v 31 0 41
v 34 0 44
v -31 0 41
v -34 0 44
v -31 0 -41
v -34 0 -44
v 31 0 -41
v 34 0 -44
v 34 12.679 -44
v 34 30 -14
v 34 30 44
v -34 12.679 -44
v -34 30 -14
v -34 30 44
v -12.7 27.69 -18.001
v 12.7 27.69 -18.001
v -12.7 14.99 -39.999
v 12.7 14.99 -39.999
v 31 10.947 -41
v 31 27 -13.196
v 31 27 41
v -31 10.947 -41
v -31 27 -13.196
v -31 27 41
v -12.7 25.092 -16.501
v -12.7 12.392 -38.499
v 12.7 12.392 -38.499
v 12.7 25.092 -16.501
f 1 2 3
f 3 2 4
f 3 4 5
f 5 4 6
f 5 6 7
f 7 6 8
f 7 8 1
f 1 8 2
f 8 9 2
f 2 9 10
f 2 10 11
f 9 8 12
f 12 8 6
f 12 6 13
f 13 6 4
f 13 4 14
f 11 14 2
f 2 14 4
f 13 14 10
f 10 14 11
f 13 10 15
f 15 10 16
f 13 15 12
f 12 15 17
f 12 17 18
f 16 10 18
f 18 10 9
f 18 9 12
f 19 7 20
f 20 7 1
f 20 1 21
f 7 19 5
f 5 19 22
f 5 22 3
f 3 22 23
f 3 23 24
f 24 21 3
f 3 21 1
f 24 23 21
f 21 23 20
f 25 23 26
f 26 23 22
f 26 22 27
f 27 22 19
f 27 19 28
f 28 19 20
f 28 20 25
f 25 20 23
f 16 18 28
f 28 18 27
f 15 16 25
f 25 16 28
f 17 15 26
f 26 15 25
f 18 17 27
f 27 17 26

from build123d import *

# Parameters (mm, degrees)
SKETCH2_W           = 68
SKETCH2_H           = 88
SKETCH2_W_2         = 62
SKETCH2_H_2         = 82
BOSS_EXTRUDE1_DEPTH = 30
CHAMFER1_SIZE       = 30
CHAMFER1_SIZE2      = 17.320508076
SHELL1_T            = -3
CUT_EXTRUDE1_REACH  = 77.039
SKETCH3_W           = 25.4
SKETCH3_H           = 25.4


with BuildPart() as part:
    # Sketch2 → Boss-Extrude1 (new body)
    # profile 1 of 2: a face of its own
    with BuildSketch(Plane(origin=(0, 0, 0), x_dir=(1, 0, 0), z_dir=(0, 1, 0))):
        Rectangle(SKETCH2_W, SKETCH2_H)
        Rectangle(SKETCH2_W_2, SKETCH2_H_2, mode=Mode.SUBTRACT)
    # profile 2 of 2: a face of its own
    with BuildSketch(Plane(origin=(0, 0, 0), x_dir=(1, 0, 0), z_dir=(0, 1, 0))):
        Rectangle(SKETCH2_W_2, SKETCH2_H_2)
    extrude(amount=BOSS_EXTRUDE1_DEPTH)

    # Chamfer1
    chamfer1_edges = [part.edges().sort_by_distance(p)[0] for p in [
        (0, 30, -44),
    ]]
    chamfer1_side = [part.faces().sort_by_distance(p)[0] for p in [
        (0, 30, 0),
    ]]
    chamfer(chamfer1_edges, length=CHAMFER1_SIZE, length2=CHAMFER1_SIZE2, reference=chamfer1_side[0])

    # Shell1
    shell1_openings = [part.faces().sort_by_distance(p)[0] for p in [
        (0, 0, 0),
    ]]
    offset(amount=SHELL1_T, openings=shell1_openings, kind=Kind.INTERSECTION)

    # Sketch3 → Cut-Extrude1 (cut, up to next)
    with BuildSketch(Plane(origin=(0, 28.562177826, -16.490381057), x_dir=(1, 0, 0), z_dir=(0, 0.8660254037844398, -0.4999999999999982)), mode=Mode.PRIVATE) as cut_extrude1_sk1:
        with Locations((0, 14.444863729)):
            Rectangle(SKETCH3_W, SKETCH3_H)
    cut_extrude1_tool1 = extrude(cut_extrude1_sk1.sketch, amount=-CUT_EXTRUDE1_REACH, mode=Mode.PRIVATE) & part.part
    add(cut_extrude1_tool1.solids().sort_by_distance((0, 21.339746, -29))[0], mode=Mode.SUBTRACT)


solid = part.part
